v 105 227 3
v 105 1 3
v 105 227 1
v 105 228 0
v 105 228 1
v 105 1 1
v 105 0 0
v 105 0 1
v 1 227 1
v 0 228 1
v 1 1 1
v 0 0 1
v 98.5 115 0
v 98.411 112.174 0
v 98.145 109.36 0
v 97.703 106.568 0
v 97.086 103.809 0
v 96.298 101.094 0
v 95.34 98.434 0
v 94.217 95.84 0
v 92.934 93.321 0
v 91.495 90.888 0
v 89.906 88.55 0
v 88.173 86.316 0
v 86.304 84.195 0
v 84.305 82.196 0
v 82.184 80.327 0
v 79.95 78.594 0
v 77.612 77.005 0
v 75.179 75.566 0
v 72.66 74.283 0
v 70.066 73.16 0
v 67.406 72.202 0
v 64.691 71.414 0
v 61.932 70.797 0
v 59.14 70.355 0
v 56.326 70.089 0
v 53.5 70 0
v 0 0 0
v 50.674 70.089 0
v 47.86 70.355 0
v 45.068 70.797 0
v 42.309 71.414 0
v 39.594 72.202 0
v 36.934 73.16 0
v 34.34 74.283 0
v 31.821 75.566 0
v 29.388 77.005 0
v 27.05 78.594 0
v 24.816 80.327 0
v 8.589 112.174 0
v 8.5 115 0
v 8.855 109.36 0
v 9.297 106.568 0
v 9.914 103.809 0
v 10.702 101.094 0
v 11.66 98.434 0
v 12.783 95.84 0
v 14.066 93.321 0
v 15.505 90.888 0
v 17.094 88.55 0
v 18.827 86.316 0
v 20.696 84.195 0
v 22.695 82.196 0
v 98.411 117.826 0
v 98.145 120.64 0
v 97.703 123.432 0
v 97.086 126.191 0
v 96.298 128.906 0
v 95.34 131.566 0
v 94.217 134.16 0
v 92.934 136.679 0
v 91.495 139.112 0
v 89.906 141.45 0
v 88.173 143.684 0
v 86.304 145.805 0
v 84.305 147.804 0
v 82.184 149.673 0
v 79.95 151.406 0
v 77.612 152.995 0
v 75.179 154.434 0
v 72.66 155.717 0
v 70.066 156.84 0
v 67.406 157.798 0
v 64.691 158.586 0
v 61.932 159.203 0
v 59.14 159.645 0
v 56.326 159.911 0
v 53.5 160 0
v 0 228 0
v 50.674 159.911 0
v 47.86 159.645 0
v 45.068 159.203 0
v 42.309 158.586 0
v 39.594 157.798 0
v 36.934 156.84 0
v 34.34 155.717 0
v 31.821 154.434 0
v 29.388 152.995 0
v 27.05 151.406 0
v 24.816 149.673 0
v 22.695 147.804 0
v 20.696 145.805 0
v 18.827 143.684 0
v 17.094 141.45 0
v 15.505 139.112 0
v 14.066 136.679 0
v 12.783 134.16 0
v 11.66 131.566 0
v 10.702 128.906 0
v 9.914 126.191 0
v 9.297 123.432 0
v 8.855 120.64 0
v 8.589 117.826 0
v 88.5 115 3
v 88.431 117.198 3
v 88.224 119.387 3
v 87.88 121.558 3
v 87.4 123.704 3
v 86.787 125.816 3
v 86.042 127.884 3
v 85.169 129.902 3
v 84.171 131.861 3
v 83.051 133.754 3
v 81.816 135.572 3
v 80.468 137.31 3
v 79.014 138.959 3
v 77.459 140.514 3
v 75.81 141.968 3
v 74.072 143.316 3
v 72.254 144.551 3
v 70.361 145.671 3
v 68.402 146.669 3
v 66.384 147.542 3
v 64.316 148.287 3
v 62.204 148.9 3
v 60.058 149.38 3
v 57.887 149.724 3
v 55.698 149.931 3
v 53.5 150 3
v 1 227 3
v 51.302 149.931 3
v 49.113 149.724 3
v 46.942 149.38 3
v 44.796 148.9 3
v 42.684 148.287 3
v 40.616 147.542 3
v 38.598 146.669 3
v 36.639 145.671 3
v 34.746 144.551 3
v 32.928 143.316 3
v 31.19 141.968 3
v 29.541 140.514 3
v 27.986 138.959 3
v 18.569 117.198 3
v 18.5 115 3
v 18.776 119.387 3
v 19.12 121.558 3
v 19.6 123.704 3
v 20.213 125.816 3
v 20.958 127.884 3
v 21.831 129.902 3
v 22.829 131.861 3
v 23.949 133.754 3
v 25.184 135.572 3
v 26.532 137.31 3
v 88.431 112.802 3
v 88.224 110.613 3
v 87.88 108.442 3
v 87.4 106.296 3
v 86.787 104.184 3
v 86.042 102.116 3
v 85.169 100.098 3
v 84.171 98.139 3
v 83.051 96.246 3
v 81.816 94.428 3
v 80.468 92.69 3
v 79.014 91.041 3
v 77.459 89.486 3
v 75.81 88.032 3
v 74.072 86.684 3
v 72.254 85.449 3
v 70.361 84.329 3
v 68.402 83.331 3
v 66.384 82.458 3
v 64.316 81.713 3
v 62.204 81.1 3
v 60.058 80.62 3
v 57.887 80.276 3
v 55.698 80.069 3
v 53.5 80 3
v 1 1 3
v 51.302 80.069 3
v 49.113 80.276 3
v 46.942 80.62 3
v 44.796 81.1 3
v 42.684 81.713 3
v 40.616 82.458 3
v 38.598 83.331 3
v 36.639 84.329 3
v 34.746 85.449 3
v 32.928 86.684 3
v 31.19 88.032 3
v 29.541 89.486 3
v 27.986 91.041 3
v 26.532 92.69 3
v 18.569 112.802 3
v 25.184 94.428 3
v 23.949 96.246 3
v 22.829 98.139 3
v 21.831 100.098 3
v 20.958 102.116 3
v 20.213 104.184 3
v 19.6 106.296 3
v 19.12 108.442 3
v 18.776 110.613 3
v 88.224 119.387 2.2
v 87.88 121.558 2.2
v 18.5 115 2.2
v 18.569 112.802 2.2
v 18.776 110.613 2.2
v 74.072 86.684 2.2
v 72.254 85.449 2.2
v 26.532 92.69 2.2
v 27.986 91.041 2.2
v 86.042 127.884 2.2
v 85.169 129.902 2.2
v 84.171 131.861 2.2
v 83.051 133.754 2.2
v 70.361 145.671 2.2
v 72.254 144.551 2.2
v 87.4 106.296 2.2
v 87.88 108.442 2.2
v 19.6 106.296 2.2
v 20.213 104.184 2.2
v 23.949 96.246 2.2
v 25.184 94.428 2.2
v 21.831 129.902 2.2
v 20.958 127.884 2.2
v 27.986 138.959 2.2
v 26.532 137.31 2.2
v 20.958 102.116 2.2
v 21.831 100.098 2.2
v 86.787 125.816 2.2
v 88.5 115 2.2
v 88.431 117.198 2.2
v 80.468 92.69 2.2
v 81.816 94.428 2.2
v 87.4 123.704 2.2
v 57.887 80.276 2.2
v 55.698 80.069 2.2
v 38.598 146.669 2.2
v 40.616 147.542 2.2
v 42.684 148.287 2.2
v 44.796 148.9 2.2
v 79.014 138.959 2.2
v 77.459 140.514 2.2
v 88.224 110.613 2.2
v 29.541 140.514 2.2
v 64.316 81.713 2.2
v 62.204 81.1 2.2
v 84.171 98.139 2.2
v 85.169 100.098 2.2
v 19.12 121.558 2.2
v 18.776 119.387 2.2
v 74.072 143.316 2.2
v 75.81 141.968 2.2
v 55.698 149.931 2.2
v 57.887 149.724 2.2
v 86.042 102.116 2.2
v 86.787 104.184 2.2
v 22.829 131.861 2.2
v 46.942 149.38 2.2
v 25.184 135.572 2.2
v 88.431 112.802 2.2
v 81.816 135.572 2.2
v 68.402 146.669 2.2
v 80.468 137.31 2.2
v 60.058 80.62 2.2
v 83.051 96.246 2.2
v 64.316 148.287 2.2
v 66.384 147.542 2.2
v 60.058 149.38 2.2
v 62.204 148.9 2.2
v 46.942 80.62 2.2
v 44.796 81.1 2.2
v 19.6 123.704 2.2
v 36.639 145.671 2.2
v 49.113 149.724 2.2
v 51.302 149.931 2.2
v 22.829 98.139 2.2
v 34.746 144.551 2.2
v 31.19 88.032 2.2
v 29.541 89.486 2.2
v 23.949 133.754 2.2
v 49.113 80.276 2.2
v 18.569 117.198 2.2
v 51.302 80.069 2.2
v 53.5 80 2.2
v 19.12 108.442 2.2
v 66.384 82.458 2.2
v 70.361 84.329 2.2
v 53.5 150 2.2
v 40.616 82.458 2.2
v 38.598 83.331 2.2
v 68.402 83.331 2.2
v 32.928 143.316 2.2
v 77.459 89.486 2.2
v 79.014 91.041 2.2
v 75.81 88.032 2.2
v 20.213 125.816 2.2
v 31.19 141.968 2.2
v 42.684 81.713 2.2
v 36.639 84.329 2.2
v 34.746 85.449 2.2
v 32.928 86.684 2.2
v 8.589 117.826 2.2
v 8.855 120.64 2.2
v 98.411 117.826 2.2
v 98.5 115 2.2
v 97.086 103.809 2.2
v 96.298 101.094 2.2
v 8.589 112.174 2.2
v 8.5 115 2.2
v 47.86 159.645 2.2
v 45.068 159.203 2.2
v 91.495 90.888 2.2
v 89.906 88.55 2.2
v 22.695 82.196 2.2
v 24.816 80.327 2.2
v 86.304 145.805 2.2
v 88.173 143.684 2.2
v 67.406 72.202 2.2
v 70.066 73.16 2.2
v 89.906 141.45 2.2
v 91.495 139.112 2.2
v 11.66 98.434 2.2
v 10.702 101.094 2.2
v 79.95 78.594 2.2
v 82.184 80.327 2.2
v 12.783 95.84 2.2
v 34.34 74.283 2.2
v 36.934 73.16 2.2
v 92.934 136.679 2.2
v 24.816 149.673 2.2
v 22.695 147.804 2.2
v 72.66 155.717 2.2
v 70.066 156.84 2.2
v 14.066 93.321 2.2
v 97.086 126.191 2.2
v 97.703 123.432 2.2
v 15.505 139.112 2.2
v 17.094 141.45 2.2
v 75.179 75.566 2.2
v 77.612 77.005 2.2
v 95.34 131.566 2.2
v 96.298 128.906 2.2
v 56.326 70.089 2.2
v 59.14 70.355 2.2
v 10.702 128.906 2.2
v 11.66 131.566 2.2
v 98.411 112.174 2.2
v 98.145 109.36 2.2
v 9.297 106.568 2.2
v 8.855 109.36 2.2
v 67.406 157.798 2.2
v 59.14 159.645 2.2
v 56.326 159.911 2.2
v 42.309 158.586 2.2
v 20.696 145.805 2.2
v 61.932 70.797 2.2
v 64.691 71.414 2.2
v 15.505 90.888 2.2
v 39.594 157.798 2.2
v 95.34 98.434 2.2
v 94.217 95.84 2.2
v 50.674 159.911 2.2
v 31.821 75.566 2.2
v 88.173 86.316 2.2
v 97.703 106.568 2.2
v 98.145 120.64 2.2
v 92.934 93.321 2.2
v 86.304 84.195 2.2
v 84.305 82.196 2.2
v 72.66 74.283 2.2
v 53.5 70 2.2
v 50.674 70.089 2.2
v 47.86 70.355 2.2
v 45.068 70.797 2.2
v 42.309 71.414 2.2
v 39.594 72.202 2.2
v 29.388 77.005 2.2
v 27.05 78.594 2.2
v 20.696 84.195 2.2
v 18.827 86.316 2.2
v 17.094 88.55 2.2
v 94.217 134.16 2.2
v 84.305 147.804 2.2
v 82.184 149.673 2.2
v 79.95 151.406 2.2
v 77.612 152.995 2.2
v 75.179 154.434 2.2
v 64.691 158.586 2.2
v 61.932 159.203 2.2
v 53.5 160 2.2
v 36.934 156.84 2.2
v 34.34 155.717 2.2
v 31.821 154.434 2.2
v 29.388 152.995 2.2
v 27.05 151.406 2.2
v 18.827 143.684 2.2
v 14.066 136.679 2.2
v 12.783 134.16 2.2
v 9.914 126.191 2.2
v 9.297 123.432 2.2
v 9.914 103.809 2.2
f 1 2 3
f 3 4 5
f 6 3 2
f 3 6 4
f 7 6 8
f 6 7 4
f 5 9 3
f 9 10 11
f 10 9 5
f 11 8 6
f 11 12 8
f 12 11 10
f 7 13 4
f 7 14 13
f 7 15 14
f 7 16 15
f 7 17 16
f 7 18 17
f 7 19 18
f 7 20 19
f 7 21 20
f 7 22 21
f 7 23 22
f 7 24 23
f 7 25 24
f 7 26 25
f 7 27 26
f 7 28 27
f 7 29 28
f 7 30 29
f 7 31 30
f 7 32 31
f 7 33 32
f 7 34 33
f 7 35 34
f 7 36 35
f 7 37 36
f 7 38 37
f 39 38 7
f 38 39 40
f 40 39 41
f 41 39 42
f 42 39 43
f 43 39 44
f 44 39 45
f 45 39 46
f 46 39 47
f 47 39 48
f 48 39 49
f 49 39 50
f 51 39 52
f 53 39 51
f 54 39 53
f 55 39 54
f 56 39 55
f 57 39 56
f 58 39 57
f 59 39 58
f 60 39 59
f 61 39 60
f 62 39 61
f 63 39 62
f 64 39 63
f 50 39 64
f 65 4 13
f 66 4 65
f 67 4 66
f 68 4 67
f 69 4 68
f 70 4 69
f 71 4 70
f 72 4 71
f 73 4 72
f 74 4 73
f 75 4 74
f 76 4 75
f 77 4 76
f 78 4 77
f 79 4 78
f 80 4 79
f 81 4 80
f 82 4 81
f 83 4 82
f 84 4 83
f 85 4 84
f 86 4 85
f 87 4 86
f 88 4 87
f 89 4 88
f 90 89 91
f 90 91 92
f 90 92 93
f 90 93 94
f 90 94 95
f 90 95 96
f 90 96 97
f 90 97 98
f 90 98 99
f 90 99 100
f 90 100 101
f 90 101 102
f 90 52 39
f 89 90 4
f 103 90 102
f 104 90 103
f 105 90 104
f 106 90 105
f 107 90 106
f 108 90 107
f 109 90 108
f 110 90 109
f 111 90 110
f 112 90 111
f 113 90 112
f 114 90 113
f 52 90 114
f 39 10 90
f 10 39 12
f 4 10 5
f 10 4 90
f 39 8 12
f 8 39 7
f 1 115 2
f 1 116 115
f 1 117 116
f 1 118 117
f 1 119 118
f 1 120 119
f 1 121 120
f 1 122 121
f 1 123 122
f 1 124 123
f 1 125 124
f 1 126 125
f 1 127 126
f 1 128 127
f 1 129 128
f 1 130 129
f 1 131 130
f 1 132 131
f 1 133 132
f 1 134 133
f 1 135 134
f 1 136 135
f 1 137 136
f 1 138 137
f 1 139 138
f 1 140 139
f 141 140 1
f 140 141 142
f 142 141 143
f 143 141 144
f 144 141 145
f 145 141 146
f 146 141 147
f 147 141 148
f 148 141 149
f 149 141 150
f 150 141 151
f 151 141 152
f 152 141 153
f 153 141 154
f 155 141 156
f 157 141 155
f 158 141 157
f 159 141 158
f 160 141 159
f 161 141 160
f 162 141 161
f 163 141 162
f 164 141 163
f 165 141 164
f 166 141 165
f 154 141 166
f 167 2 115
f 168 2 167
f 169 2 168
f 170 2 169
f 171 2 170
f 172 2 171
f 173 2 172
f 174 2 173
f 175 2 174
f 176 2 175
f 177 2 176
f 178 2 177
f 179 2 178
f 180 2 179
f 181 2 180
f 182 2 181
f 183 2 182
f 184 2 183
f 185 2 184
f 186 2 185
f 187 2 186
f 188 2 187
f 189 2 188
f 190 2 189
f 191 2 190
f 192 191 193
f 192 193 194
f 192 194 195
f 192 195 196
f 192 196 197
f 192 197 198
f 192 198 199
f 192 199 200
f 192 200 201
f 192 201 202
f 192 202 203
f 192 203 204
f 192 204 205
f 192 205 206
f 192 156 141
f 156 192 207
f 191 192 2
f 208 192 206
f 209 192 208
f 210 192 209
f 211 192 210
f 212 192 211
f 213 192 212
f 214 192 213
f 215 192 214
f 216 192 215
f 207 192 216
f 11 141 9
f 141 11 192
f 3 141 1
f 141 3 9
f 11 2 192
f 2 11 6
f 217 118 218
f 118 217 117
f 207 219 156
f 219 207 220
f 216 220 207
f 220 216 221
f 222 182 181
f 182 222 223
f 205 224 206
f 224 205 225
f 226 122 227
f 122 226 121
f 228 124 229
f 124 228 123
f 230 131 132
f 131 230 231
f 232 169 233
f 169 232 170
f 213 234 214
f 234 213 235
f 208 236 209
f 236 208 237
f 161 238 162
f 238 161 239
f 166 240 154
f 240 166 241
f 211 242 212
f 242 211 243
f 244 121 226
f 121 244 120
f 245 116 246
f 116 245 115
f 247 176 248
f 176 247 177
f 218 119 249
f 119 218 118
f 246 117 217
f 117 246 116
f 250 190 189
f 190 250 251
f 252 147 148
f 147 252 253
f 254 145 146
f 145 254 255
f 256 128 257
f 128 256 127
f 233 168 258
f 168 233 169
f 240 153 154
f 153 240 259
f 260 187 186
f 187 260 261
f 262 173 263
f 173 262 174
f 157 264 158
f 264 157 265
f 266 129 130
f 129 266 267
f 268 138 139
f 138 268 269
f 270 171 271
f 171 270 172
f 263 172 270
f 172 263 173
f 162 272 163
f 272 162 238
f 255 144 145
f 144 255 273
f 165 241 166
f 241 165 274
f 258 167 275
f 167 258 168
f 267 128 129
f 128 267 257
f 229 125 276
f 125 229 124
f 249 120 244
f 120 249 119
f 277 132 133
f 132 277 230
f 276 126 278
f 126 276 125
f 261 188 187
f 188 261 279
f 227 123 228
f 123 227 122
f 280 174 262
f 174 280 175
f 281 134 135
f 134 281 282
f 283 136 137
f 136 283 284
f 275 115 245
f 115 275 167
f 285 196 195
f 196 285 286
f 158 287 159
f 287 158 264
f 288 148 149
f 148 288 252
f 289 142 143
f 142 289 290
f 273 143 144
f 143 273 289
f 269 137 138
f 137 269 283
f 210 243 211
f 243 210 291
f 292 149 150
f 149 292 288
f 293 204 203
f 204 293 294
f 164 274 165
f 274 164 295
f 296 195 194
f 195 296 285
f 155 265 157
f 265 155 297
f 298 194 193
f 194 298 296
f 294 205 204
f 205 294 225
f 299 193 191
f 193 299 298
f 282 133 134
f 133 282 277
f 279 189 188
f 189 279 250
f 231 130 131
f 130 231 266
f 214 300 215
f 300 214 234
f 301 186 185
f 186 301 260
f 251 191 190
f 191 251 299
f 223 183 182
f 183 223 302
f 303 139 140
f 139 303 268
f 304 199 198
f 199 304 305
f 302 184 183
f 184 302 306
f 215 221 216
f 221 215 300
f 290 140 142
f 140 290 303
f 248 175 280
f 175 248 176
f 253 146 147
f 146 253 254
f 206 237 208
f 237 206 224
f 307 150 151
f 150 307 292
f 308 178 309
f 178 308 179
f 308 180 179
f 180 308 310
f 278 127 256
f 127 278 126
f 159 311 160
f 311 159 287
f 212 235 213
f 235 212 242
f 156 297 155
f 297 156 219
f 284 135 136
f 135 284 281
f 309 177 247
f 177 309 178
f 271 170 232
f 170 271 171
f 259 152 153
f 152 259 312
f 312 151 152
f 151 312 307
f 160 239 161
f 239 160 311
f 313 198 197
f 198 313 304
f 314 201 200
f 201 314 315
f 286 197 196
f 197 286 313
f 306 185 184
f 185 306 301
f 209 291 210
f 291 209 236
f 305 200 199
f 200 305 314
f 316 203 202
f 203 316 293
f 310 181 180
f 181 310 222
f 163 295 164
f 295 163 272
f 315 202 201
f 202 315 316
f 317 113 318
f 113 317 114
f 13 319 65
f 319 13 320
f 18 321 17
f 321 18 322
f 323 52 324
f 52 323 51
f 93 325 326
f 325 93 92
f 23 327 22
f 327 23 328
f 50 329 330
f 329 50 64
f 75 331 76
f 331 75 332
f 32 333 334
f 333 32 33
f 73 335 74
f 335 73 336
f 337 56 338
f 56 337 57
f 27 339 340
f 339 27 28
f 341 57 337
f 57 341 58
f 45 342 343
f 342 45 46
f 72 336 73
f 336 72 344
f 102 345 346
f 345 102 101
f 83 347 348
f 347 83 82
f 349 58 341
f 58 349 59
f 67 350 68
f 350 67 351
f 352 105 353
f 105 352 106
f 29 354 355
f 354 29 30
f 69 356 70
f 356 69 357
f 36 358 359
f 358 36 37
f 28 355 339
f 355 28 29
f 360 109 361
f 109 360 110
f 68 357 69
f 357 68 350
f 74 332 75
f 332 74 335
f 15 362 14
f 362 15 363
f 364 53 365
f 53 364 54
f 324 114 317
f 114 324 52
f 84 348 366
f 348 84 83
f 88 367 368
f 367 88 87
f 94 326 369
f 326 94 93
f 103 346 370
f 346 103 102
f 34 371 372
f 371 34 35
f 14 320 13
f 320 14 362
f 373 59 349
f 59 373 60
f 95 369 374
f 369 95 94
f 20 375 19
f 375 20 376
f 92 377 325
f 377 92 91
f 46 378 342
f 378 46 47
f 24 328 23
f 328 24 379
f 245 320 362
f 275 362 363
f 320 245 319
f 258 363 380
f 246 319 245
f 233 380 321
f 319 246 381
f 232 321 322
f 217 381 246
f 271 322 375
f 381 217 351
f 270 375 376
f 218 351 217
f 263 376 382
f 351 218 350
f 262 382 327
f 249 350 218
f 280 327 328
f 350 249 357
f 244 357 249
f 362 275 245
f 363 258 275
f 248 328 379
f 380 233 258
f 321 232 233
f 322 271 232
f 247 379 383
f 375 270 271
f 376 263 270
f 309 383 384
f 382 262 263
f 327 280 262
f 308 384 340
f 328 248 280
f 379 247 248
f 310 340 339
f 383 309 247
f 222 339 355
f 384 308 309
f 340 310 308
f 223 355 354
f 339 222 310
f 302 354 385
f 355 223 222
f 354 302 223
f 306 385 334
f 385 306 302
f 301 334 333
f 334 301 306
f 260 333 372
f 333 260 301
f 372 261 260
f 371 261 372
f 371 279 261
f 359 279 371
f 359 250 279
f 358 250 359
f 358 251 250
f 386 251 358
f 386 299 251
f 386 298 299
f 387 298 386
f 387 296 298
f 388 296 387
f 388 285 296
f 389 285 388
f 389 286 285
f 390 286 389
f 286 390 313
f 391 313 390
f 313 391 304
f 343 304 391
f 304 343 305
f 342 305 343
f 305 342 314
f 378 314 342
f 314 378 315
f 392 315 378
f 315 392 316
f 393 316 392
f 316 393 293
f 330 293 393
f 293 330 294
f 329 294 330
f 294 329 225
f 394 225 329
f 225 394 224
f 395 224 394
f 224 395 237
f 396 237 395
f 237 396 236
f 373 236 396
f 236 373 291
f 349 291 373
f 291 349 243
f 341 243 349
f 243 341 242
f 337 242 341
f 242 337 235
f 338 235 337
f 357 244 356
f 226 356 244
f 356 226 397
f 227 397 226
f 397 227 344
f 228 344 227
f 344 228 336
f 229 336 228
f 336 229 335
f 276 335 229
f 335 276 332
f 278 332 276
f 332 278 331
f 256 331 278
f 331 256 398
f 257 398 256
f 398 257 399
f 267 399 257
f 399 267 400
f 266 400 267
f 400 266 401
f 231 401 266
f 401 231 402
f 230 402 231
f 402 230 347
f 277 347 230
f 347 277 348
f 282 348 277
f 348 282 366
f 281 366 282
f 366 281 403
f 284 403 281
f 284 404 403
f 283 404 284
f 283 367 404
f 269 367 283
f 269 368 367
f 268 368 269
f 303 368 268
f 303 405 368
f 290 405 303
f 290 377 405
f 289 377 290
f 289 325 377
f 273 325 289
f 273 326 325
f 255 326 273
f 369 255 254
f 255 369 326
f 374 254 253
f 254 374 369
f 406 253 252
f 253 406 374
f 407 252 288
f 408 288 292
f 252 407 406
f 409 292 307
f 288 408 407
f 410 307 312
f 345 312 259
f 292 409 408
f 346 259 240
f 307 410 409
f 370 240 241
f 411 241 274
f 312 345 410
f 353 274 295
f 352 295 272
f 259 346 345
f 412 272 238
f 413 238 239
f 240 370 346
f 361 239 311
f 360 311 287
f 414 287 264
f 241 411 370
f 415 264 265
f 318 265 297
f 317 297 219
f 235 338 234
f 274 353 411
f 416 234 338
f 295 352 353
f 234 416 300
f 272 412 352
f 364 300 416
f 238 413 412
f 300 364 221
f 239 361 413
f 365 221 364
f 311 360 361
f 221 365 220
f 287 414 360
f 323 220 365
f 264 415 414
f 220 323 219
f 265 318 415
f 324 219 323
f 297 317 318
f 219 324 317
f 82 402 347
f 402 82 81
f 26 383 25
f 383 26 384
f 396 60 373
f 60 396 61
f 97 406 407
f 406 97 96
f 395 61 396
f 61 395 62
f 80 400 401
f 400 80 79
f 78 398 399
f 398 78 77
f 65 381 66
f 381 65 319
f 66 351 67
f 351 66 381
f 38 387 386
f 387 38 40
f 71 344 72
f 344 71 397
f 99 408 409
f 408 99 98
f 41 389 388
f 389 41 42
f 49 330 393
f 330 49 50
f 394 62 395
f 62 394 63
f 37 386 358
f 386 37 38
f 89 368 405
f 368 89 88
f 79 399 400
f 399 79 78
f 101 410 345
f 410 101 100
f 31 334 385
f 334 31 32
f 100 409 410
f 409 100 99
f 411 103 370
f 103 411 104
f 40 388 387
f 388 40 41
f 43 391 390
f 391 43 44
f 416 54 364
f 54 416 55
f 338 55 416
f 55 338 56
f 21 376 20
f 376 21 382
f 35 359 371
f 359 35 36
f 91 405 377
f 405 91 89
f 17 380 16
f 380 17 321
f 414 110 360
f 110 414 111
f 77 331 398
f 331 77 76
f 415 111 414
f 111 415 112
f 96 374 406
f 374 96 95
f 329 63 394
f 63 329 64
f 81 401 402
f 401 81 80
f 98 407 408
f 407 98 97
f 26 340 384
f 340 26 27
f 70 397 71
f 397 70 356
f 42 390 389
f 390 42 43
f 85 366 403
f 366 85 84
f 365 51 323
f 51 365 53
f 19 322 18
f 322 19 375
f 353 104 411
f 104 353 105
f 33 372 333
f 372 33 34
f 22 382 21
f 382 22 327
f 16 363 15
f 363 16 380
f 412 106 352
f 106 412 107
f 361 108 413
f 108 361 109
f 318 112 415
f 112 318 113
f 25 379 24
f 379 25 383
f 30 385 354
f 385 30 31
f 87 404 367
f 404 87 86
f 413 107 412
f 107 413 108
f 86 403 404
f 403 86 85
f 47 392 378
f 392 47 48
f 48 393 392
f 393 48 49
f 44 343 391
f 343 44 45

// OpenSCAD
OUT_X = 107;
OUT_Y = 230;
OUT_Z = 29;

FLOOR_PW = 2;
WALL_PW  = 2;

LID_PW = 3;
LID_SLIT = 1;

PAPER_PW = 2;



difference(){
	union(){
		// Verschließteil
		cube([ OUT_X-WALL_PW , OUT_Y-2 , 1 ]);
		// Deckelteil
		translate([1,1,1]) cube([ OUT_X-WALL_PW-1 , OUT_Y-2*WALL_PW , 2 ]);
	};

	// Window
	translate([0.5*OUT_X , 0.5*OUT_Y , -1]) cylinder(5,r=35,$fn=100);
	// Planet Place
	translate([0.5*OUT_X , 0.5*OUT_Y , -1]) cylinder(2.2+1,r=90*0.5,$fn=100);
};
